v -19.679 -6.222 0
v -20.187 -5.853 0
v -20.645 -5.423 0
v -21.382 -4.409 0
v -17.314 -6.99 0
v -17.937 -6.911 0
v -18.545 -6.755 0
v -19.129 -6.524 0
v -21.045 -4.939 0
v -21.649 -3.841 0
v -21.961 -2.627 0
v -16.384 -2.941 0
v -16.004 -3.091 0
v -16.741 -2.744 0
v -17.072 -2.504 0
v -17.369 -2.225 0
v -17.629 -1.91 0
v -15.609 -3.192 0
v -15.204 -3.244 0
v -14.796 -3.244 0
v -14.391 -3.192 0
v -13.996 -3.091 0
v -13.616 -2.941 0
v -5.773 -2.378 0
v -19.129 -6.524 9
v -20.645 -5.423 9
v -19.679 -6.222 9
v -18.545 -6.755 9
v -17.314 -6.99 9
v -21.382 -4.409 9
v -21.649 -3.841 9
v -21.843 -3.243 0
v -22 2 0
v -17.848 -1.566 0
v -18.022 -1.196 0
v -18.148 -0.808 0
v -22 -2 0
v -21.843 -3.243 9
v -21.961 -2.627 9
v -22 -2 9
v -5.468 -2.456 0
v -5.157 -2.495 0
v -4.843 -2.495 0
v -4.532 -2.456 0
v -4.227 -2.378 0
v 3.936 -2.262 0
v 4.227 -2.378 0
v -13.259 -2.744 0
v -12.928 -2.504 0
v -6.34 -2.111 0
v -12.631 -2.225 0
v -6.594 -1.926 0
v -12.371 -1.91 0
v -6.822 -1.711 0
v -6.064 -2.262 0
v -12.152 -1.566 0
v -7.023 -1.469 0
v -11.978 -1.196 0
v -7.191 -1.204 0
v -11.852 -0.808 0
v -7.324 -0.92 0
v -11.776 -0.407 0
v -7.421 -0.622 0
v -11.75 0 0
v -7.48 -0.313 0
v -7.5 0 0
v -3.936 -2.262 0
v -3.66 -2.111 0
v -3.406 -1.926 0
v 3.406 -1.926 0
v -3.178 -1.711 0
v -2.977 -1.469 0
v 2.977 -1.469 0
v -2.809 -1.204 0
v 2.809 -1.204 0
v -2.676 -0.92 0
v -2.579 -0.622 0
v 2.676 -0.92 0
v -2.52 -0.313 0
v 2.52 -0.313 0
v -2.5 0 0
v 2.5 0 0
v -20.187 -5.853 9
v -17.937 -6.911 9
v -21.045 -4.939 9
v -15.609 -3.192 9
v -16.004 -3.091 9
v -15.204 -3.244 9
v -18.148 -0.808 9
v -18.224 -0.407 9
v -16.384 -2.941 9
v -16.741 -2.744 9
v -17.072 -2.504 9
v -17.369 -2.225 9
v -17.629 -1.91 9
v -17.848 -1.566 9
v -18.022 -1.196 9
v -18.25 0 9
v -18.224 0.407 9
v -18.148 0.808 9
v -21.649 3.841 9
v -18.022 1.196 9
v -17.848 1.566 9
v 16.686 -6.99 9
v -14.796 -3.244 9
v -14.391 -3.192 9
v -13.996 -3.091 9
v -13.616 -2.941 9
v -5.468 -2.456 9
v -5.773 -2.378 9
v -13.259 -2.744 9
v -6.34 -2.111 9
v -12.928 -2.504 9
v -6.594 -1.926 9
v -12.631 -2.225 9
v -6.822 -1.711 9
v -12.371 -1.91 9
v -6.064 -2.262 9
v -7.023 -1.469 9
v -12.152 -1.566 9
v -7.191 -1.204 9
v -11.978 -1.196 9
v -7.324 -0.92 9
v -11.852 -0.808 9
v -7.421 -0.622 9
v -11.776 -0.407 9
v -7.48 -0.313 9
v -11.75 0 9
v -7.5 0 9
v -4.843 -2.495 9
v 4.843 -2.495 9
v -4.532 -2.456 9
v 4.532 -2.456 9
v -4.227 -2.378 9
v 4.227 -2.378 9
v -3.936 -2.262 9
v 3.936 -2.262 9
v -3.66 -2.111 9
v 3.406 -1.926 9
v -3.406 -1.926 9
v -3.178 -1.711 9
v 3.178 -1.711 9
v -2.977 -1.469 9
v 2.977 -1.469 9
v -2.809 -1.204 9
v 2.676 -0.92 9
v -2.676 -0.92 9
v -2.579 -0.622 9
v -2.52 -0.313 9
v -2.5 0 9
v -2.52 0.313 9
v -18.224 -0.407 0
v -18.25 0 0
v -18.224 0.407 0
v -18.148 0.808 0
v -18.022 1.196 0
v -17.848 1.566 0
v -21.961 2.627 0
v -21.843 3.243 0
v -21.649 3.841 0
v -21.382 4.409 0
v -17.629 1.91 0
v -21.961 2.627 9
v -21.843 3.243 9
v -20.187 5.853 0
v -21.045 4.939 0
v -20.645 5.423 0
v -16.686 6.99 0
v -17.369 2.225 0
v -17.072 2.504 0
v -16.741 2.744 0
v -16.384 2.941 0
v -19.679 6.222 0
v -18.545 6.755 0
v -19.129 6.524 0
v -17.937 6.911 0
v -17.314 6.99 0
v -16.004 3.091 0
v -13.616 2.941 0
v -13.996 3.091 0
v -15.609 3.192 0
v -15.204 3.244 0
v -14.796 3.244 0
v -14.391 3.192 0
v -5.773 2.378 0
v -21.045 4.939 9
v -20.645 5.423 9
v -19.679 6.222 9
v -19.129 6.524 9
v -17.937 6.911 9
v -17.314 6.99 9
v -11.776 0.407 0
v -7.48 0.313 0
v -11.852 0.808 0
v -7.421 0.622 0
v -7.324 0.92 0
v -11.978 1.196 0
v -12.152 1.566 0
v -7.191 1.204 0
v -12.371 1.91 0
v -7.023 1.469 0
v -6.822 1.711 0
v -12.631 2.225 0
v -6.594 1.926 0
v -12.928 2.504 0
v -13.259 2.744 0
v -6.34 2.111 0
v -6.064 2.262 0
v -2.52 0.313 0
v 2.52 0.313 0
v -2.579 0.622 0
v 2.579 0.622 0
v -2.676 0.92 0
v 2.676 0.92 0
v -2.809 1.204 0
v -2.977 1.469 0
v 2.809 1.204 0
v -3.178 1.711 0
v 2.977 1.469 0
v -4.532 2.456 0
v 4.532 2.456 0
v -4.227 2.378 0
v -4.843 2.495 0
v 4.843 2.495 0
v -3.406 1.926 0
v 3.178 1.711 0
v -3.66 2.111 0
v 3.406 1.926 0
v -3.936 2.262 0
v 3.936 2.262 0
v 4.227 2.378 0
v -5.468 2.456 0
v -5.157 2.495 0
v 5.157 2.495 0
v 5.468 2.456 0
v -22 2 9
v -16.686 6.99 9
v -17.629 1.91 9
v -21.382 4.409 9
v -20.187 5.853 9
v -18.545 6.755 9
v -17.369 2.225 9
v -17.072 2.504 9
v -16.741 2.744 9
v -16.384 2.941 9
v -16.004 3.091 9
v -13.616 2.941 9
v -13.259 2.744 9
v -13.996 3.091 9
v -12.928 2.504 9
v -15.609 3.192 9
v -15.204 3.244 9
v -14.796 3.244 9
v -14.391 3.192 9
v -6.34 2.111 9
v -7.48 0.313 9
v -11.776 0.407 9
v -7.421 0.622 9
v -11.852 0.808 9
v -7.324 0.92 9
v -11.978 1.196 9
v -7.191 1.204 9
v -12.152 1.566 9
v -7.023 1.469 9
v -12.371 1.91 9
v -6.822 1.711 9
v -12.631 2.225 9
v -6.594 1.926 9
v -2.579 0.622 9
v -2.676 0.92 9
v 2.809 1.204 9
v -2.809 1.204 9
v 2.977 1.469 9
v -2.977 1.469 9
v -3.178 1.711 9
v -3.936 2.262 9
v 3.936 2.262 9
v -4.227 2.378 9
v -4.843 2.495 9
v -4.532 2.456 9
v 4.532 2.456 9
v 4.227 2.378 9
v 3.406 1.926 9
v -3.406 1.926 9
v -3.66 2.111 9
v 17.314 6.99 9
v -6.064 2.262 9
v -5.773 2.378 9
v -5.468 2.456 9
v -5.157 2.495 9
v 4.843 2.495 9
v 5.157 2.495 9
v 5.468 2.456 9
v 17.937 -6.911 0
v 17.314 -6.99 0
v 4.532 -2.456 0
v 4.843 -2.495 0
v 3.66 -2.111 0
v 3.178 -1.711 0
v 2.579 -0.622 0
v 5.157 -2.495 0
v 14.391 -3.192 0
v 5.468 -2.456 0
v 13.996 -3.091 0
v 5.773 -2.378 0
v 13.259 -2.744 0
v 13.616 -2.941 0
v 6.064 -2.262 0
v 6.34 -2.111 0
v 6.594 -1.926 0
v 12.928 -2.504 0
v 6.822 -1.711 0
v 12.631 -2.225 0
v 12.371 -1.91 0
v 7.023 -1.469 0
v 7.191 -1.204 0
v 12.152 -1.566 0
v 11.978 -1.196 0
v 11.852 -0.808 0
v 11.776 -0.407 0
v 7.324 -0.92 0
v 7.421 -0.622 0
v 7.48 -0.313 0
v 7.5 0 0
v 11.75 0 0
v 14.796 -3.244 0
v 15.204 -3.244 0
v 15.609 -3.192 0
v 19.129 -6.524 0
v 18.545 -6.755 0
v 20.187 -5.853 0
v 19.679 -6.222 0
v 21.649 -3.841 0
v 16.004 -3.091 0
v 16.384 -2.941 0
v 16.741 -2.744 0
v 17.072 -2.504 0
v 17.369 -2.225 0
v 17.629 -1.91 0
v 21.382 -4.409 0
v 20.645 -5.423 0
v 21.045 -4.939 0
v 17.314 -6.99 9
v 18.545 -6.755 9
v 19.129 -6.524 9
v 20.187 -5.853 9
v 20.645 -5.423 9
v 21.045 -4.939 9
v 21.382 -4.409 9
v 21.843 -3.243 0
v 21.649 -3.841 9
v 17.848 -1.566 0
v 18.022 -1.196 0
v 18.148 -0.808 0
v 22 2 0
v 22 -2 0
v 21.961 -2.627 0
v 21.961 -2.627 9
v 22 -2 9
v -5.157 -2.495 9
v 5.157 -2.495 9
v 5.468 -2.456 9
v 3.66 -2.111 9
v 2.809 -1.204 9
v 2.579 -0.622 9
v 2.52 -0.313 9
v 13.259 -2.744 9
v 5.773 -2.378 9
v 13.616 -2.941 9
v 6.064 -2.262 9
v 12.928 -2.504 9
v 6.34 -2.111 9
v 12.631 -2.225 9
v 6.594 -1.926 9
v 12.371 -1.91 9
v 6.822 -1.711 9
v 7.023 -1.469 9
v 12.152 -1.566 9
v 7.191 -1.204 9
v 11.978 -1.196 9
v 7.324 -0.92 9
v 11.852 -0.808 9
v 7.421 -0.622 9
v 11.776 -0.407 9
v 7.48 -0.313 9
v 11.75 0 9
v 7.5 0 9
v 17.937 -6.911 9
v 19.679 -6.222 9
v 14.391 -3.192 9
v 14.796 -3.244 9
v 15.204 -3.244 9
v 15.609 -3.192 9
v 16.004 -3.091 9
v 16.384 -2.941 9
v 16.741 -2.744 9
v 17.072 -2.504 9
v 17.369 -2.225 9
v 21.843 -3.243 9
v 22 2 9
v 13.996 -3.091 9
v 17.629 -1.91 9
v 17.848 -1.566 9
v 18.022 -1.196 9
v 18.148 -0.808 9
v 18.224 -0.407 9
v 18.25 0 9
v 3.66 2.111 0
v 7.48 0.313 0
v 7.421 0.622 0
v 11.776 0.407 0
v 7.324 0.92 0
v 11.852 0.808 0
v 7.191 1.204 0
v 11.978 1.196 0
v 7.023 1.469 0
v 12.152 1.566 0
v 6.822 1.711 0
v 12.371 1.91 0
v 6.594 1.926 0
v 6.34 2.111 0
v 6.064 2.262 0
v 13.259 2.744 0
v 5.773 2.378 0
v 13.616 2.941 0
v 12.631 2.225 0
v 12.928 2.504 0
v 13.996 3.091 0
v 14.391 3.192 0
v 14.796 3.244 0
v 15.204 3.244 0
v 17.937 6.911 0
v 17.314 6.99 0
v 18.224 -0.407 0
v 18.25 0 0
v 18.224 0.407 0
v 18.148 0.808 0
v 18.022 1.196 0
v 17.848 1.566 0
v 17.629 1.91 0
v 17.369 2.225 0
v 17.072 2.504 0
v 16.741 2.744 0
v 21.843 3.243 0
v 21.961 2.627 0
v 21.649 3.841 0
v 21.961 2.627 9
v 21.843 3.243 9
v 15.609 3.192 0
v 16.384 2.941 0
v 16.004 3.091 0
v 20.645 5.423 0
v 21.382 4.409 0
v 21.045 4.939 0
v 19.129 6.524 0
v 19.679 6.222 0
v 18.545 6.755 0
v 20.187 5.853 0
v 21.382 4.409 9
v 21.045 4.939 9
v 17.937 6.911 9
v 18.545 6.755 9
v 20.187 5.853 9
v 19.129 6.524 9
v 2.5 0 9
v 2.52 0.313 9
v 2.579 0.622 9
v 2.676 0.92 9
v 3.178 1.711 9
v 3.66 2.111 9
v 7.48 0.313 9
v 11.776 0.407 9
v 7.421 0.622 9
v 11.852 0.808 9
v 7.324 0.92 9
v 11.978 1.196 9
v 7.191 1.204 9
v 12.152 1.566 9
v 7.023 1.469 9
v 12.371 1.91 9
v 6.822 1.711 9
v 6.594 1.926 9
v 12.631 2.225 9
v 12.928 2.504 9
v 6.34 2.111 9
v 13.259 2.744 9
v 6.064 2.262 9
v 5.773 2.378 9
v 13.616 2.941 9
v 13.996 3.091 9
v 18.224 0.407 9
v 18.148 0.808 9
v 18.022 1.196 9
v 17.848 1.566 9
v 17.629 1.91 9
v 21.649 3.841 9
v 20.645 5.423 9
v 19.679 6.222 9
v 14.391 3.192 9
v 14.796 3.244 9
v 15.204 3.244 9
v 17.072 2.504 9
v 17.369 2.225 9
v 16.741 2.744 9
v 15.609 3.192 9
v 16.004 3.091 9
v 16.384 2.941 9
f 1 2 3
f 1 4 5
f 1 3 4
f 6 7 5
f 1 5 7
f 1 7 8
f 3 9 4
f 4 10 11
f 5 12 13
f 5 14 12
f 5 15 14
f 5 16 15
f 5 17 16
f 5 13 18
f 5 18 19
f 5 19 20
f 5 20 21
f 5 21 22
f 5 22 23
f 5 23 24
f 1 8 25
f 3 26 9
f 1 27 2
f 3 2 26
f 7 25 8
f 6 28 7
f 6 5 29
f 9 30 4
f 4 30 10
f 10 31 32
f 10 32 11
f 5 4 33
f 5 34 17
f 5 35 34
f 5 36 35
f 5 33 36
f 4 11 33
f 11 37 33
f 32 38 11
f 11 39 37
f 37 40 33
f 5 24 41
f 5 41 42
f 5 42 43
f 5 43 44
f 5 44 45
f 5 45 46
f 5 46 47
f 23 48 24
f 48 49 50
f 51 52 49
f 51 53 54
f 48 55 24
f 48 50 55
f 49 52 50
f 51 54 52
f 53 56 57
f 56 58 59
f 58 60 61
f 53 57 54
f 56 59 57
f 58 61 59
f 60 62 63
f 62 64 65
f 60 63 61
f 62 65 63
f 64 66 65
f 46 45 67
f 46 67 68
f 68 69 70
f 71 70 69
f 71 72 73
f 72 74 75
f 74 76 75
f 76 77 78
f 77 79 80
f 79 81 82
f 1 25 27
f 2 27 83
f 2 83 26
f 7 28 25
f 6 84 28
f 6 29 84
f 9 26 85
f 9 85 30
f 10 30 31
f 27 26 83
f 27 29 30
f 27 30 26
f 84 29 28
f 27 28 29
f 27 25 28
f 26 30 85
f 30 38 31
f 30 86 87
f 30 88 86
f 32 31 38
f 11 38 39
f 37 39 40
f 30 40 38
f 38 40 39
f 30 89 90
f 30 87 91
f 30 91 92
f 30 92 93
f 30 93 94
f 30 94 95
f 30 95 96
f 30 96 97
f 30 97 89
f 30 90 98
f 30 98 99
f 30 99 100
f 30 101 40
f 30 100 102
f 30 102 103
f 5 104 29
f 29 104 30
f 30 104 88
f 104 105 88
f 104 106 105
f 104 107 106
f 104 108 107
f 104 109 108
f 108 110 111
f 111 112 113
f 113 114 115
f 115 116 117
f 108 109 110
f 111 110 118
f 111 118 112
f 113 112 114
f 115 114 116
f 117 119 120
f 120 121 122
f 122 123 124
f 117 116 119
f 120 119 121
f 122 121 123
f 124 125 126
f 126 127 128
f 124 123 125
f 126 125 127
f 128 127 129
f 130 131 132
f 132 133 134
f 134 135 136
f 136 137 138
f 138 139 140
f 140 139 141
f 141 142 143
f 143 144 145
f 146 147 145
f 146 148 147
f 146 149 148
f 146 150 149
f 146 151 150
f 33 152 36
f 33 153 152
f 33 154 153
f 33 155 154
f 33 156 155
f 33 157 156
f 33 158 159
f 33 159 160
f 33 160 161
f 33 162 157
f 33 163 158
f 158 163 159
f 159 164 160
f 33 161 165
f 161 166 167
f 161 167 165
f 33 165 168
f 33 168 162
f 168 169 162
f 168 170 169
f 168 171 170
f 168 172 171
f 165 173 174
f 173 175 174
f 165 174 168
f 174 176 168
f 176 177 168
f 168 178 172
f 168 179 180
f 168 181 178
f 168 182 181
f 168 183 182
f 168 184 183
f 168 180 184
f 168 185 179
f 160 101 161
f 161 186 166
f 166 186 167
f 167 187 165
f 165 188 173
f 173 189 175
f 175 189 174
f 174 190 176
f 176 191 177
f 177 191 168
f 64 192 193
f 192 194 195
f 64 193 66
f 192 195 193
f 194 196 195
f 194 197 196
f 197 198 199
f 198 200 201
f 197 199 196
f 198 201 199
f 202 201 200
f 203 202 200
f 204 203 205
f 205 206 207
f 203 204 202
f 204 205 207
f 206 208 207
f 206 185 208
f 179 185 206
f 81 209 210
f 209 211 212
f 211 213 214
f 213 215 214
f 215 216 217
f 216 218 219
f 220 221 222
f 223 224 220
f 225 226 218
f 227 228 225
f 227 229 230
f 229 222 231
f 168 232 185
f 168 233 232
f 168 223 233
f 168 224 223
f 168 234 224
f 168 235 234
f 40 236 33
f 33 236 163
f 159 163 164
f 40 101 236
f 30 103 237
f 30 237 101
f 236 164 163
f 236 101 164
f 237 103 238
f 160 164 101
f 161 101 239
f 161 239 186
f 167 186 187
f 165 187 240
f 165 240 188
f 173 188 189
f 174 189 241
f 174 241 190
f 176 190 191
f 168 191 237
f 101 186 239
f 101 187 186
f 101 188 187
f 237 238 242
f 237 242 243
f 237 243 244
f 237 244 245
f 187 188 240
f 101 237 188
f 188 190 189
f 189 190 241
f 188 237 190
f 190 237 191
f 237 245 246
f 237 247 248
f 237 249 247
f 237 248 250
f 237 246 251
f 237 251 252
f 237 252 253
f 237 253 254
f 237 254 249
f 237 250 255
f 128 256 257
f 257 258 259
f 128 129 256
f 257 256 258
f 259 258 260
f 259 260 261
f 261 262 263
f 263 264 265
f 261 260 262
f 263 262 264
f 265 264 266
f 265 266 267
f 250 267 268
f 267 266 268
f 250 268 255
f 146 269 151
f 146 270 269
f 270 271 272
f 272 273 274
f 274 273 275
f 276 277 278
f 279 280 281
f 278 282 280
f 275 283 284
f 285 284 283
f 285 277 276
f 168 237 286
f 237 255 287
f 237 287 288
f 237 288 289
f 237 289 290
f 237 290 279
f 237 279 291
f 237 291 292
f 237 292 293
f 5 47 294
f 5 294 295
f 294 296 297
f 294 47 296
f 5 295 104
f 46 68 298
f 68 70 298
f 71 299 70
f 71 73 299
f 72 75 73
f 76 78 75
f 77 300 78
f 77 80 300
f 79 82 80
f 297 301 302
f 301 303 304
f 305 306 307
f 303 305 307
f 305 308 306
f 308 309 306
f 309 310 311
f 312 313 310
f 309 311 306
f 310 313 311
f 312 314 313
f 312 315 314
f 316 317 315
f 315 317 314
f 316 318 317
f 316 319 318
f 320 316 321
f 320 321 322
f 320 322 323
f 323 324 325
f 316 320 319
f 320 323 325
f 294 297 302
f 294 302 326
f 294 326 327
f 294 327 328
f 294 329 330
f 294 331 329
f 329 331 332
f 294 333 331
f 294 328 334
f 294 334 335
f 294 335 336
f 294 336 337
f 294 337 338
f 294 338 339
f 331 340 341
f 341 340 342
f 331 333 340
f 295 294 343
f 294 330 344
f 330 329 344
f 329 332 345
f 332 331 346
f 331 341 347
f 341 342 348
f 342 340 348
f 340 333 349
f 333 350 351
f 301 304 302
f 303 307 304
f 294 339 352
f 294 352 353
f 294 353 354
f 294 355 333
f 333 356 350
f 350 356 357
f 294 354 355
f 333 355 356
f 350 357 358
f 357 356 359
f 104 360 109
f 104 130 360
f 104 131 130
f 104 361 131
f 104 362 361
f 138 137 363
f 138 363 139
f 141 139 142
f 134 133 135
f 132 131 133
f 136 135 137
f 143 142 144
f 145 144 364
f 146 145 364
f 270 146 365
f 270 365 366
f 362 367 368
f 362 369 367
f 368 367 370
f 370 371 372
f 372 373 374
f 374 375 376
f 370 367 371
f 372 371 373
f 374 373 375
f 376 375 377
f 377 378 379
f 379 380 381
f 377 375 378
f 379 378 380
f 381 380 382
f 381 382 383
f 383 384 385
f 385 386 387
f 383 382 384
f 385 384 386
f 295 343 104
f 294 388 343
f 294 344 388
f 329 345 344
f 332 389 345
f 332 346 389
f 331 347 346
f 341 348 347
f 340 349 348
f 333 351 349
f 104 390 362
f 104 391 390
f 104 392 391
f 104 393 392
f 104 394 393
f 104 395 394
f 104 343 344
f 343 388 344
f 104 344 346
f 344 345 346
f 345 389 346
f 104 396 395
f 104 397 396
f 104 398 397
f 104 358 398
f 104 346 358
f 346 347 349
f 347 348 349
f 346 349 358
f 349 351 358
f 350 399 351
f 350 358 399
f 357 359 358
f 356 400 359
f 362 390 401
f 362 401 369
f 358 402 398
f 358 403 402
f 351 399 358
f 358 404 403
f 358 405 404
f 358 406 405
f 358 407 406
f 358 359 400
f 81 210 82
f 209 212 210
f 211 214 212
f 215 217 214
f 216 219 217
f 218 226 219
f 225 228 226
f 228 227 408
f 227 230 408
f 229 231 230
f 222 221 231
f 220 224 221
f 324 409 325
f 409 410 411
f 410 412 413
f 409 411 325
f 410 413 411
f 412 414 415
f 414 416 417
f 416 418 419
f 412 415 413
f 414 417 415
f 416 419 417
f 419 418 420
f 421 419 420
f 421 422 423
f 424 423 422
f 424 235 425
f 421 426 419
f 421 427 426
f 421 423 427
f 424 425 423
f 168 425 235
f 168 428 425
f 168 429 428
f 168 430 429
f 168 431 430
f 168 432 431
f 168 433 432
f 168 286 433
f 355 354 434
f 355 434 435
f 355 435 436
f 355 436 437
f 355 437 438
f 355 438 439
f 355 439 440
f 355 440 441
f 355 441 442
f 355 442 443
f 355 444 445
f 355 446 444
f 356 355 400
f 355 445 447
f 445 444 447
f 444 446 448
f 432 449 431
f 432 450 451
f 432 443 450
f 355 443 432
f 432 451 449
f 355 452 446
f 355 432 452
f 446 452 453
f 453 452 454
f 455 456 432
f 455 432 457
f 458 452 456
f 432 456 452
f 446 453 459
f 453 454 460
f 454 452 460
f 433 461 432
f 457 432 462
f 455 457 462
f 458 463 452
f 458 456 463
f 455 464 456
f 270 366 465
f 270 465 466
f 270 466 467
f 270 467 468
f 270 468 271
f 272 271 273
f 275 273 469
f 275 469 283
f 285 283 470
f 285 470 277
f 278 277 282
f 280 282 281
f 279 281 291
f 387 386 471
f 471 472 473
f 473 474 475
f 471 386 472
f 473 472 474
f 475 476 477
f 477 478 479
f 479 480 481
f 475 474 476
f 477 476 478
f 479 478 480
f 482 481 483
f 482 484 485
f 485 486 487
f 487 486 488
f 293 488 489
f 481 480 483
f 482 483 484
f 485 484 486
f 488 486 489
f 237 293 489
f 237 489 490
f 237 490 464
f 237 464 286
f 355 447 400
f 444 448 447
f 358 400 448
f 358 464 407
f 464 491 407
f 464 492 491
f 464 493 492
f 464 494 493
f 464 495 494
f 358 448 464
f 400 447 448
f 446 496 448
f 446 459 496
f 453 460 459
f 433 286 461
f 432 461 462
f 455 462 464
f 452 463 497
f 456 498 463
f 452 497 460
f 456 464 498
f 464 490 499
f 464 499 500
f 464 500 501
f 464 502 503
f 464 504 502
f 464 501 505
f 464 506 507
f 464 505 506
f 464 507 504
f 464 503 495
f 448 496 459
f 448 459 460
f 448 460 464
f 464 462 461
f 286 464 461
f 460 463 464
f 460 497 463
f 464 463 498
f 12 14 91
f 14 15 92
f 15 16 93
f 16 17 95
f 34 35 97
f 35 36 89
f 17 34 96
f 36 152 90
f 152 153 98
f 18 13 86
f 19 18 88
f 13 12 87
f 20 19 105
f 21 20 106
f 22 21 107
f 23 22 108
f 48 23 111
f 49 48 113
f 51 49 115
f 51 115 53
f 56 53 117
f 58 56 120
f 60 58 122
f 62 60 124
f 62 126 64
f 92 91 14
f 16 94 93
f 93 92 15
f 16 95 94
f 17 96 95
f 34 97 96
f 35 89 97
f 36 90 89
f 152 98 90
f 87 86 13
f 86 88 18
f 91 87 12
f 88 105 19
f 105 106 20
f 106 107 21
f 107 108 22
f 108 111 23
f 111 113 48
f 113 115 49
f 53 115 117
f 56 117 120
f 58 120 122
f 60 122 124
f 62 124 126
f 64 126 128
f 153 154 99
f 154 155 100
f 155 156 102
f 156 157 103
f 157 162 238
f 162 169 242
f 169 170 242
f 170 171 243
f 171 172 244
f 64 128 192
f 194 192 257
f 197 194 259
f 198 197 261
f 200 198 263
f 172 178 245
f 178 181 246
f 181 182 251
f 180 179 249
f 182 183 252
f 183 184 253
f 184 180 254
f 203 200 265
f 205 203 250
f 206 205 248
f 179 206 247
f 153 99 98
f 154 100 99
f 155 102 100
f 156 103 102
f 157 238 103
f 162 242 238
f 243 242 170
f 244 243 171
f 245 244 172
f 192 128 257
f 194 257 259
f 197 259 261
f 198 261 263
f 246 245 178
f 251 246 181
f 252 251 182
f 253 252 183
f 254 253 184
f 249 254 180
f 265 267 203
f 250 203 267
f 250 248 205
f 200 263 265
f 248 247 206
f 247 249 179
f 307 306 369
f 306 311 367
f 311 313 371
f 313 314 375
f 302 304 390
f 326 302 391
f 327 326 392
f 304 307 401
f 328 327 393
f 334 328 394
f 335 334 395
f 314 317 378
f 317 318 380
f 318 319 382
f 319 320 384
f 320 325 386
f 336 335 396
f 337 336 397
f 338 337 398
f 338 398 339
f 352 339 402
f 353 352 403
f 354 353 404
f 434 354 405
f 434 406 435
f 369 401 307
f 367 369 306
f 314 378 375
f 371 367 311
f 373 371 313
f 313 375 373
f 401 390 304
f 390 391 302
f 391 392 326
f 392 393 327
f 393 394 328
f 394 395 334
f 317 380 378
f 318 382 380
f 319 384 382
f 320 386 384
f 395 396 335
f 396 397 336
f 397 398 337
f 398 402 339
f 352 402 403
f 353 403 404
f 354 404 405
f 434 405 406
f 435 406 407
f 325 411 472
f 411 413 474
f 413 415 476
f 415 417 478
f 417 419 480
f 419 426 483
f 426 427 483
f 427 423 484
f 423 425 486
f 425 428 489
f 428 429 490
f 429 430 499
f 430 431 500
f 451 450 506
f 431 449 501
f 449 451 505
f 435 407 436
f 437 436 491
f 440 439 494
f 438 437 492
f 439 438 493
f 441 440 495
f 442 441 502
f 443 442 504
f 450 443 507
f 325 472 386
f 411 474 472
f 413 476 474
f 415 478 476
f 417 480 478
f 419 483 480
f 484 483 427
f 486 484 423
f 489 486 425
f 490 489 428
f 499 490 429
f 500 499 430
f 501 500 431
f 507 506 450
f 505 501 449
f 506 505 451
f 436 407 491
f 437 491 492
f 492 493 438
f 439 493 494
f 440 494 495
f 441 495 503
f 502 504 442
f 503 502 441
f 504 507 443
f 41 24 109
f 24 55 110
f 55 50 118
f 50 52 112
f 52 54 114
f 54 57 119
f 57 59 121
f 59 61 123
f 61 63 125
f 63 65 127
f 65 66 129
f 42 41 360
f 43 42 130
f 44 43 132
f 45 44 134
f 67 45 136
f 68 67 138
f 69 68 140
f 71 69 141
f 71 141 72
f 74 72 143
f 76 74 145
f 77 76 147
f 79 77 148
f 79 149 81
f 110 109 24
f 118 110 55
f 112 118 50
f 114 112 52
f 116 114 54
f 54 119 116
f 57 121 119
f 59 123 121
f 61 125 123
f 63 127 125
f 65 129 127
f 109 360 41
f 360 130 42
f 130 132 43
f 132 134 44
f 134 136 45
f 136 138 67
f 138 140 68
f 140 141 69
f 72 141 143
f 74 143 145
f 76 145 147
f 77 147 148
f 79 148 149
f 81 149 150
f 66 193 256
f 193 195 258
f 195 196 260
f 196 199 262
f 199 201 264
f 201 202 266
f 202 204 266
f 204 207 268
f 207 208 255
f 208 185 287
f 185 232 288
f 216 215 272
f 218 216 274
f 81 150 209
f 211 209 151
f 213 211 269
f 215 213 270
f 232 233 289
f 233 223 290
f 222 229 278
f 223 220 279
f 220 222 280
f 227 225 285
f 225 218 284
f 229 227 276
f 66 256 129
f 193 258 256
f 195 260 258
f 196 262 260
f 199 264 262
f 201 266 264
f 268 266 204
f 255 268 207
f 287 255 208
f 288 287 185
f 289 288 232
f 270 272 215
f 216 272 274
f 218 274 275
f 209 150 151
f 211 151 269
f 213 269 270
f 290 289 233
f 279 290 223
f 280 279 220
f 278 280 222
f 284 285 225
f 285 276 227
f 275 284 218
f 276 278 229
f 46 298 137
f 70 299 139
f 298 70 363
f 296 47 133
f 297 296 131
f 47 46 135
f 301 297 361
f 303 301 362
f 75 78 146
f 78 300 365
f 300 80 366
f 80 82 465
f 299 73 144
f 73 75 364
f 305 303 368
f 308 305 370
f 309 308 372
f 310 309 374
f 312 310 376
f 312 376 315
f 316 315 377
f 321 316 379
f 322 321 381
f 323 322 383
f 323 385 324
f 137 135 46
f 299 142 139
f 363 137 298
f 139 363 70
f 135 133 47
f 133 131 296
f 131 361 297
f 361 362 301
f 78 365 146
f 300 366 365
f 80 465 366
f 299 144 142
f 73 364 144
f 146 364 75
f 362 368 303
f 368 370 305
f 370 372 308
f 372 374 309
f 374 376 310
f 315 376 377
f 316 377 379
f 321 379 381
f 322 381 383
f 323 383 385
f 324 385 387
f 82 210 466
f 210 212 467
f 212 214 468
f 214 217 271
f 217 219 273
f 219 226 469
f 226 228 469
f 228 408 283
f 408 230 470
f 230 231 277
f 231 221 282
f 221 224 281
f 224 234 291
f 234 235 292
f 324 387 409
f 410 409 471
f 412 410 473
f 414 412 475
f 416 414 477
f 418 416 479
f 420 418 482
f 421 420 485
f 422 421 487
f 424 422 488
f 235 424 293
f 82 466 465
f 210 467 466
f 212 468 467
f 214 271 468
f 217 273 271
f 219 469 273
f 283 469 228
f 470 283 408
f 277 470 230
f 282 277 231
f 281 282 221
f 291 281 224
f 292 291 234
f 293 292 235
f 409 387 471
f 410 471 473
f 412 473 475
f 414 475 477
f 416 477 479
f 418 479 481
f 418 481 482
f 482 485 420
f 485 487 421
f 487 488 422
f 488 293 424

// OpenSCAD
$fn = 50;

difference() {
	union() {
		hull() {
			translate(v = [-17.0, 2.0, 0]) {
				cylinder(h = 9, r = 5);
			}
			translate(v = [17.0, 2.0, 0]) {
				cylinder(h = 9, r = 5);
			}
			translate(v = [-17.0, -2.0, 0]) {
				cylinder(h = 9, r = 5);
			}
			translate(v = [17.0, -2.0, 0]) {
				cylinder(h = 9, r = 5);
			}
		}
	}
	union() {
		translate(v = [-15.0, 0.0, 0]) {
			cylinder(h = 9, r = 3.25);
		}
		translate(v = [15.0, 0.0, 0]) {
			cylinder(h = 9, r = 3.25);
		}
		translate(v = [-5.0, 0, 0.0]) {
			cylinder(h = 9, r = 2.5);
		}
		translate(v = [5.0, 0, 0.0]) {
			cylinder(h = 9, r = 2.5);
		}
	}
}
